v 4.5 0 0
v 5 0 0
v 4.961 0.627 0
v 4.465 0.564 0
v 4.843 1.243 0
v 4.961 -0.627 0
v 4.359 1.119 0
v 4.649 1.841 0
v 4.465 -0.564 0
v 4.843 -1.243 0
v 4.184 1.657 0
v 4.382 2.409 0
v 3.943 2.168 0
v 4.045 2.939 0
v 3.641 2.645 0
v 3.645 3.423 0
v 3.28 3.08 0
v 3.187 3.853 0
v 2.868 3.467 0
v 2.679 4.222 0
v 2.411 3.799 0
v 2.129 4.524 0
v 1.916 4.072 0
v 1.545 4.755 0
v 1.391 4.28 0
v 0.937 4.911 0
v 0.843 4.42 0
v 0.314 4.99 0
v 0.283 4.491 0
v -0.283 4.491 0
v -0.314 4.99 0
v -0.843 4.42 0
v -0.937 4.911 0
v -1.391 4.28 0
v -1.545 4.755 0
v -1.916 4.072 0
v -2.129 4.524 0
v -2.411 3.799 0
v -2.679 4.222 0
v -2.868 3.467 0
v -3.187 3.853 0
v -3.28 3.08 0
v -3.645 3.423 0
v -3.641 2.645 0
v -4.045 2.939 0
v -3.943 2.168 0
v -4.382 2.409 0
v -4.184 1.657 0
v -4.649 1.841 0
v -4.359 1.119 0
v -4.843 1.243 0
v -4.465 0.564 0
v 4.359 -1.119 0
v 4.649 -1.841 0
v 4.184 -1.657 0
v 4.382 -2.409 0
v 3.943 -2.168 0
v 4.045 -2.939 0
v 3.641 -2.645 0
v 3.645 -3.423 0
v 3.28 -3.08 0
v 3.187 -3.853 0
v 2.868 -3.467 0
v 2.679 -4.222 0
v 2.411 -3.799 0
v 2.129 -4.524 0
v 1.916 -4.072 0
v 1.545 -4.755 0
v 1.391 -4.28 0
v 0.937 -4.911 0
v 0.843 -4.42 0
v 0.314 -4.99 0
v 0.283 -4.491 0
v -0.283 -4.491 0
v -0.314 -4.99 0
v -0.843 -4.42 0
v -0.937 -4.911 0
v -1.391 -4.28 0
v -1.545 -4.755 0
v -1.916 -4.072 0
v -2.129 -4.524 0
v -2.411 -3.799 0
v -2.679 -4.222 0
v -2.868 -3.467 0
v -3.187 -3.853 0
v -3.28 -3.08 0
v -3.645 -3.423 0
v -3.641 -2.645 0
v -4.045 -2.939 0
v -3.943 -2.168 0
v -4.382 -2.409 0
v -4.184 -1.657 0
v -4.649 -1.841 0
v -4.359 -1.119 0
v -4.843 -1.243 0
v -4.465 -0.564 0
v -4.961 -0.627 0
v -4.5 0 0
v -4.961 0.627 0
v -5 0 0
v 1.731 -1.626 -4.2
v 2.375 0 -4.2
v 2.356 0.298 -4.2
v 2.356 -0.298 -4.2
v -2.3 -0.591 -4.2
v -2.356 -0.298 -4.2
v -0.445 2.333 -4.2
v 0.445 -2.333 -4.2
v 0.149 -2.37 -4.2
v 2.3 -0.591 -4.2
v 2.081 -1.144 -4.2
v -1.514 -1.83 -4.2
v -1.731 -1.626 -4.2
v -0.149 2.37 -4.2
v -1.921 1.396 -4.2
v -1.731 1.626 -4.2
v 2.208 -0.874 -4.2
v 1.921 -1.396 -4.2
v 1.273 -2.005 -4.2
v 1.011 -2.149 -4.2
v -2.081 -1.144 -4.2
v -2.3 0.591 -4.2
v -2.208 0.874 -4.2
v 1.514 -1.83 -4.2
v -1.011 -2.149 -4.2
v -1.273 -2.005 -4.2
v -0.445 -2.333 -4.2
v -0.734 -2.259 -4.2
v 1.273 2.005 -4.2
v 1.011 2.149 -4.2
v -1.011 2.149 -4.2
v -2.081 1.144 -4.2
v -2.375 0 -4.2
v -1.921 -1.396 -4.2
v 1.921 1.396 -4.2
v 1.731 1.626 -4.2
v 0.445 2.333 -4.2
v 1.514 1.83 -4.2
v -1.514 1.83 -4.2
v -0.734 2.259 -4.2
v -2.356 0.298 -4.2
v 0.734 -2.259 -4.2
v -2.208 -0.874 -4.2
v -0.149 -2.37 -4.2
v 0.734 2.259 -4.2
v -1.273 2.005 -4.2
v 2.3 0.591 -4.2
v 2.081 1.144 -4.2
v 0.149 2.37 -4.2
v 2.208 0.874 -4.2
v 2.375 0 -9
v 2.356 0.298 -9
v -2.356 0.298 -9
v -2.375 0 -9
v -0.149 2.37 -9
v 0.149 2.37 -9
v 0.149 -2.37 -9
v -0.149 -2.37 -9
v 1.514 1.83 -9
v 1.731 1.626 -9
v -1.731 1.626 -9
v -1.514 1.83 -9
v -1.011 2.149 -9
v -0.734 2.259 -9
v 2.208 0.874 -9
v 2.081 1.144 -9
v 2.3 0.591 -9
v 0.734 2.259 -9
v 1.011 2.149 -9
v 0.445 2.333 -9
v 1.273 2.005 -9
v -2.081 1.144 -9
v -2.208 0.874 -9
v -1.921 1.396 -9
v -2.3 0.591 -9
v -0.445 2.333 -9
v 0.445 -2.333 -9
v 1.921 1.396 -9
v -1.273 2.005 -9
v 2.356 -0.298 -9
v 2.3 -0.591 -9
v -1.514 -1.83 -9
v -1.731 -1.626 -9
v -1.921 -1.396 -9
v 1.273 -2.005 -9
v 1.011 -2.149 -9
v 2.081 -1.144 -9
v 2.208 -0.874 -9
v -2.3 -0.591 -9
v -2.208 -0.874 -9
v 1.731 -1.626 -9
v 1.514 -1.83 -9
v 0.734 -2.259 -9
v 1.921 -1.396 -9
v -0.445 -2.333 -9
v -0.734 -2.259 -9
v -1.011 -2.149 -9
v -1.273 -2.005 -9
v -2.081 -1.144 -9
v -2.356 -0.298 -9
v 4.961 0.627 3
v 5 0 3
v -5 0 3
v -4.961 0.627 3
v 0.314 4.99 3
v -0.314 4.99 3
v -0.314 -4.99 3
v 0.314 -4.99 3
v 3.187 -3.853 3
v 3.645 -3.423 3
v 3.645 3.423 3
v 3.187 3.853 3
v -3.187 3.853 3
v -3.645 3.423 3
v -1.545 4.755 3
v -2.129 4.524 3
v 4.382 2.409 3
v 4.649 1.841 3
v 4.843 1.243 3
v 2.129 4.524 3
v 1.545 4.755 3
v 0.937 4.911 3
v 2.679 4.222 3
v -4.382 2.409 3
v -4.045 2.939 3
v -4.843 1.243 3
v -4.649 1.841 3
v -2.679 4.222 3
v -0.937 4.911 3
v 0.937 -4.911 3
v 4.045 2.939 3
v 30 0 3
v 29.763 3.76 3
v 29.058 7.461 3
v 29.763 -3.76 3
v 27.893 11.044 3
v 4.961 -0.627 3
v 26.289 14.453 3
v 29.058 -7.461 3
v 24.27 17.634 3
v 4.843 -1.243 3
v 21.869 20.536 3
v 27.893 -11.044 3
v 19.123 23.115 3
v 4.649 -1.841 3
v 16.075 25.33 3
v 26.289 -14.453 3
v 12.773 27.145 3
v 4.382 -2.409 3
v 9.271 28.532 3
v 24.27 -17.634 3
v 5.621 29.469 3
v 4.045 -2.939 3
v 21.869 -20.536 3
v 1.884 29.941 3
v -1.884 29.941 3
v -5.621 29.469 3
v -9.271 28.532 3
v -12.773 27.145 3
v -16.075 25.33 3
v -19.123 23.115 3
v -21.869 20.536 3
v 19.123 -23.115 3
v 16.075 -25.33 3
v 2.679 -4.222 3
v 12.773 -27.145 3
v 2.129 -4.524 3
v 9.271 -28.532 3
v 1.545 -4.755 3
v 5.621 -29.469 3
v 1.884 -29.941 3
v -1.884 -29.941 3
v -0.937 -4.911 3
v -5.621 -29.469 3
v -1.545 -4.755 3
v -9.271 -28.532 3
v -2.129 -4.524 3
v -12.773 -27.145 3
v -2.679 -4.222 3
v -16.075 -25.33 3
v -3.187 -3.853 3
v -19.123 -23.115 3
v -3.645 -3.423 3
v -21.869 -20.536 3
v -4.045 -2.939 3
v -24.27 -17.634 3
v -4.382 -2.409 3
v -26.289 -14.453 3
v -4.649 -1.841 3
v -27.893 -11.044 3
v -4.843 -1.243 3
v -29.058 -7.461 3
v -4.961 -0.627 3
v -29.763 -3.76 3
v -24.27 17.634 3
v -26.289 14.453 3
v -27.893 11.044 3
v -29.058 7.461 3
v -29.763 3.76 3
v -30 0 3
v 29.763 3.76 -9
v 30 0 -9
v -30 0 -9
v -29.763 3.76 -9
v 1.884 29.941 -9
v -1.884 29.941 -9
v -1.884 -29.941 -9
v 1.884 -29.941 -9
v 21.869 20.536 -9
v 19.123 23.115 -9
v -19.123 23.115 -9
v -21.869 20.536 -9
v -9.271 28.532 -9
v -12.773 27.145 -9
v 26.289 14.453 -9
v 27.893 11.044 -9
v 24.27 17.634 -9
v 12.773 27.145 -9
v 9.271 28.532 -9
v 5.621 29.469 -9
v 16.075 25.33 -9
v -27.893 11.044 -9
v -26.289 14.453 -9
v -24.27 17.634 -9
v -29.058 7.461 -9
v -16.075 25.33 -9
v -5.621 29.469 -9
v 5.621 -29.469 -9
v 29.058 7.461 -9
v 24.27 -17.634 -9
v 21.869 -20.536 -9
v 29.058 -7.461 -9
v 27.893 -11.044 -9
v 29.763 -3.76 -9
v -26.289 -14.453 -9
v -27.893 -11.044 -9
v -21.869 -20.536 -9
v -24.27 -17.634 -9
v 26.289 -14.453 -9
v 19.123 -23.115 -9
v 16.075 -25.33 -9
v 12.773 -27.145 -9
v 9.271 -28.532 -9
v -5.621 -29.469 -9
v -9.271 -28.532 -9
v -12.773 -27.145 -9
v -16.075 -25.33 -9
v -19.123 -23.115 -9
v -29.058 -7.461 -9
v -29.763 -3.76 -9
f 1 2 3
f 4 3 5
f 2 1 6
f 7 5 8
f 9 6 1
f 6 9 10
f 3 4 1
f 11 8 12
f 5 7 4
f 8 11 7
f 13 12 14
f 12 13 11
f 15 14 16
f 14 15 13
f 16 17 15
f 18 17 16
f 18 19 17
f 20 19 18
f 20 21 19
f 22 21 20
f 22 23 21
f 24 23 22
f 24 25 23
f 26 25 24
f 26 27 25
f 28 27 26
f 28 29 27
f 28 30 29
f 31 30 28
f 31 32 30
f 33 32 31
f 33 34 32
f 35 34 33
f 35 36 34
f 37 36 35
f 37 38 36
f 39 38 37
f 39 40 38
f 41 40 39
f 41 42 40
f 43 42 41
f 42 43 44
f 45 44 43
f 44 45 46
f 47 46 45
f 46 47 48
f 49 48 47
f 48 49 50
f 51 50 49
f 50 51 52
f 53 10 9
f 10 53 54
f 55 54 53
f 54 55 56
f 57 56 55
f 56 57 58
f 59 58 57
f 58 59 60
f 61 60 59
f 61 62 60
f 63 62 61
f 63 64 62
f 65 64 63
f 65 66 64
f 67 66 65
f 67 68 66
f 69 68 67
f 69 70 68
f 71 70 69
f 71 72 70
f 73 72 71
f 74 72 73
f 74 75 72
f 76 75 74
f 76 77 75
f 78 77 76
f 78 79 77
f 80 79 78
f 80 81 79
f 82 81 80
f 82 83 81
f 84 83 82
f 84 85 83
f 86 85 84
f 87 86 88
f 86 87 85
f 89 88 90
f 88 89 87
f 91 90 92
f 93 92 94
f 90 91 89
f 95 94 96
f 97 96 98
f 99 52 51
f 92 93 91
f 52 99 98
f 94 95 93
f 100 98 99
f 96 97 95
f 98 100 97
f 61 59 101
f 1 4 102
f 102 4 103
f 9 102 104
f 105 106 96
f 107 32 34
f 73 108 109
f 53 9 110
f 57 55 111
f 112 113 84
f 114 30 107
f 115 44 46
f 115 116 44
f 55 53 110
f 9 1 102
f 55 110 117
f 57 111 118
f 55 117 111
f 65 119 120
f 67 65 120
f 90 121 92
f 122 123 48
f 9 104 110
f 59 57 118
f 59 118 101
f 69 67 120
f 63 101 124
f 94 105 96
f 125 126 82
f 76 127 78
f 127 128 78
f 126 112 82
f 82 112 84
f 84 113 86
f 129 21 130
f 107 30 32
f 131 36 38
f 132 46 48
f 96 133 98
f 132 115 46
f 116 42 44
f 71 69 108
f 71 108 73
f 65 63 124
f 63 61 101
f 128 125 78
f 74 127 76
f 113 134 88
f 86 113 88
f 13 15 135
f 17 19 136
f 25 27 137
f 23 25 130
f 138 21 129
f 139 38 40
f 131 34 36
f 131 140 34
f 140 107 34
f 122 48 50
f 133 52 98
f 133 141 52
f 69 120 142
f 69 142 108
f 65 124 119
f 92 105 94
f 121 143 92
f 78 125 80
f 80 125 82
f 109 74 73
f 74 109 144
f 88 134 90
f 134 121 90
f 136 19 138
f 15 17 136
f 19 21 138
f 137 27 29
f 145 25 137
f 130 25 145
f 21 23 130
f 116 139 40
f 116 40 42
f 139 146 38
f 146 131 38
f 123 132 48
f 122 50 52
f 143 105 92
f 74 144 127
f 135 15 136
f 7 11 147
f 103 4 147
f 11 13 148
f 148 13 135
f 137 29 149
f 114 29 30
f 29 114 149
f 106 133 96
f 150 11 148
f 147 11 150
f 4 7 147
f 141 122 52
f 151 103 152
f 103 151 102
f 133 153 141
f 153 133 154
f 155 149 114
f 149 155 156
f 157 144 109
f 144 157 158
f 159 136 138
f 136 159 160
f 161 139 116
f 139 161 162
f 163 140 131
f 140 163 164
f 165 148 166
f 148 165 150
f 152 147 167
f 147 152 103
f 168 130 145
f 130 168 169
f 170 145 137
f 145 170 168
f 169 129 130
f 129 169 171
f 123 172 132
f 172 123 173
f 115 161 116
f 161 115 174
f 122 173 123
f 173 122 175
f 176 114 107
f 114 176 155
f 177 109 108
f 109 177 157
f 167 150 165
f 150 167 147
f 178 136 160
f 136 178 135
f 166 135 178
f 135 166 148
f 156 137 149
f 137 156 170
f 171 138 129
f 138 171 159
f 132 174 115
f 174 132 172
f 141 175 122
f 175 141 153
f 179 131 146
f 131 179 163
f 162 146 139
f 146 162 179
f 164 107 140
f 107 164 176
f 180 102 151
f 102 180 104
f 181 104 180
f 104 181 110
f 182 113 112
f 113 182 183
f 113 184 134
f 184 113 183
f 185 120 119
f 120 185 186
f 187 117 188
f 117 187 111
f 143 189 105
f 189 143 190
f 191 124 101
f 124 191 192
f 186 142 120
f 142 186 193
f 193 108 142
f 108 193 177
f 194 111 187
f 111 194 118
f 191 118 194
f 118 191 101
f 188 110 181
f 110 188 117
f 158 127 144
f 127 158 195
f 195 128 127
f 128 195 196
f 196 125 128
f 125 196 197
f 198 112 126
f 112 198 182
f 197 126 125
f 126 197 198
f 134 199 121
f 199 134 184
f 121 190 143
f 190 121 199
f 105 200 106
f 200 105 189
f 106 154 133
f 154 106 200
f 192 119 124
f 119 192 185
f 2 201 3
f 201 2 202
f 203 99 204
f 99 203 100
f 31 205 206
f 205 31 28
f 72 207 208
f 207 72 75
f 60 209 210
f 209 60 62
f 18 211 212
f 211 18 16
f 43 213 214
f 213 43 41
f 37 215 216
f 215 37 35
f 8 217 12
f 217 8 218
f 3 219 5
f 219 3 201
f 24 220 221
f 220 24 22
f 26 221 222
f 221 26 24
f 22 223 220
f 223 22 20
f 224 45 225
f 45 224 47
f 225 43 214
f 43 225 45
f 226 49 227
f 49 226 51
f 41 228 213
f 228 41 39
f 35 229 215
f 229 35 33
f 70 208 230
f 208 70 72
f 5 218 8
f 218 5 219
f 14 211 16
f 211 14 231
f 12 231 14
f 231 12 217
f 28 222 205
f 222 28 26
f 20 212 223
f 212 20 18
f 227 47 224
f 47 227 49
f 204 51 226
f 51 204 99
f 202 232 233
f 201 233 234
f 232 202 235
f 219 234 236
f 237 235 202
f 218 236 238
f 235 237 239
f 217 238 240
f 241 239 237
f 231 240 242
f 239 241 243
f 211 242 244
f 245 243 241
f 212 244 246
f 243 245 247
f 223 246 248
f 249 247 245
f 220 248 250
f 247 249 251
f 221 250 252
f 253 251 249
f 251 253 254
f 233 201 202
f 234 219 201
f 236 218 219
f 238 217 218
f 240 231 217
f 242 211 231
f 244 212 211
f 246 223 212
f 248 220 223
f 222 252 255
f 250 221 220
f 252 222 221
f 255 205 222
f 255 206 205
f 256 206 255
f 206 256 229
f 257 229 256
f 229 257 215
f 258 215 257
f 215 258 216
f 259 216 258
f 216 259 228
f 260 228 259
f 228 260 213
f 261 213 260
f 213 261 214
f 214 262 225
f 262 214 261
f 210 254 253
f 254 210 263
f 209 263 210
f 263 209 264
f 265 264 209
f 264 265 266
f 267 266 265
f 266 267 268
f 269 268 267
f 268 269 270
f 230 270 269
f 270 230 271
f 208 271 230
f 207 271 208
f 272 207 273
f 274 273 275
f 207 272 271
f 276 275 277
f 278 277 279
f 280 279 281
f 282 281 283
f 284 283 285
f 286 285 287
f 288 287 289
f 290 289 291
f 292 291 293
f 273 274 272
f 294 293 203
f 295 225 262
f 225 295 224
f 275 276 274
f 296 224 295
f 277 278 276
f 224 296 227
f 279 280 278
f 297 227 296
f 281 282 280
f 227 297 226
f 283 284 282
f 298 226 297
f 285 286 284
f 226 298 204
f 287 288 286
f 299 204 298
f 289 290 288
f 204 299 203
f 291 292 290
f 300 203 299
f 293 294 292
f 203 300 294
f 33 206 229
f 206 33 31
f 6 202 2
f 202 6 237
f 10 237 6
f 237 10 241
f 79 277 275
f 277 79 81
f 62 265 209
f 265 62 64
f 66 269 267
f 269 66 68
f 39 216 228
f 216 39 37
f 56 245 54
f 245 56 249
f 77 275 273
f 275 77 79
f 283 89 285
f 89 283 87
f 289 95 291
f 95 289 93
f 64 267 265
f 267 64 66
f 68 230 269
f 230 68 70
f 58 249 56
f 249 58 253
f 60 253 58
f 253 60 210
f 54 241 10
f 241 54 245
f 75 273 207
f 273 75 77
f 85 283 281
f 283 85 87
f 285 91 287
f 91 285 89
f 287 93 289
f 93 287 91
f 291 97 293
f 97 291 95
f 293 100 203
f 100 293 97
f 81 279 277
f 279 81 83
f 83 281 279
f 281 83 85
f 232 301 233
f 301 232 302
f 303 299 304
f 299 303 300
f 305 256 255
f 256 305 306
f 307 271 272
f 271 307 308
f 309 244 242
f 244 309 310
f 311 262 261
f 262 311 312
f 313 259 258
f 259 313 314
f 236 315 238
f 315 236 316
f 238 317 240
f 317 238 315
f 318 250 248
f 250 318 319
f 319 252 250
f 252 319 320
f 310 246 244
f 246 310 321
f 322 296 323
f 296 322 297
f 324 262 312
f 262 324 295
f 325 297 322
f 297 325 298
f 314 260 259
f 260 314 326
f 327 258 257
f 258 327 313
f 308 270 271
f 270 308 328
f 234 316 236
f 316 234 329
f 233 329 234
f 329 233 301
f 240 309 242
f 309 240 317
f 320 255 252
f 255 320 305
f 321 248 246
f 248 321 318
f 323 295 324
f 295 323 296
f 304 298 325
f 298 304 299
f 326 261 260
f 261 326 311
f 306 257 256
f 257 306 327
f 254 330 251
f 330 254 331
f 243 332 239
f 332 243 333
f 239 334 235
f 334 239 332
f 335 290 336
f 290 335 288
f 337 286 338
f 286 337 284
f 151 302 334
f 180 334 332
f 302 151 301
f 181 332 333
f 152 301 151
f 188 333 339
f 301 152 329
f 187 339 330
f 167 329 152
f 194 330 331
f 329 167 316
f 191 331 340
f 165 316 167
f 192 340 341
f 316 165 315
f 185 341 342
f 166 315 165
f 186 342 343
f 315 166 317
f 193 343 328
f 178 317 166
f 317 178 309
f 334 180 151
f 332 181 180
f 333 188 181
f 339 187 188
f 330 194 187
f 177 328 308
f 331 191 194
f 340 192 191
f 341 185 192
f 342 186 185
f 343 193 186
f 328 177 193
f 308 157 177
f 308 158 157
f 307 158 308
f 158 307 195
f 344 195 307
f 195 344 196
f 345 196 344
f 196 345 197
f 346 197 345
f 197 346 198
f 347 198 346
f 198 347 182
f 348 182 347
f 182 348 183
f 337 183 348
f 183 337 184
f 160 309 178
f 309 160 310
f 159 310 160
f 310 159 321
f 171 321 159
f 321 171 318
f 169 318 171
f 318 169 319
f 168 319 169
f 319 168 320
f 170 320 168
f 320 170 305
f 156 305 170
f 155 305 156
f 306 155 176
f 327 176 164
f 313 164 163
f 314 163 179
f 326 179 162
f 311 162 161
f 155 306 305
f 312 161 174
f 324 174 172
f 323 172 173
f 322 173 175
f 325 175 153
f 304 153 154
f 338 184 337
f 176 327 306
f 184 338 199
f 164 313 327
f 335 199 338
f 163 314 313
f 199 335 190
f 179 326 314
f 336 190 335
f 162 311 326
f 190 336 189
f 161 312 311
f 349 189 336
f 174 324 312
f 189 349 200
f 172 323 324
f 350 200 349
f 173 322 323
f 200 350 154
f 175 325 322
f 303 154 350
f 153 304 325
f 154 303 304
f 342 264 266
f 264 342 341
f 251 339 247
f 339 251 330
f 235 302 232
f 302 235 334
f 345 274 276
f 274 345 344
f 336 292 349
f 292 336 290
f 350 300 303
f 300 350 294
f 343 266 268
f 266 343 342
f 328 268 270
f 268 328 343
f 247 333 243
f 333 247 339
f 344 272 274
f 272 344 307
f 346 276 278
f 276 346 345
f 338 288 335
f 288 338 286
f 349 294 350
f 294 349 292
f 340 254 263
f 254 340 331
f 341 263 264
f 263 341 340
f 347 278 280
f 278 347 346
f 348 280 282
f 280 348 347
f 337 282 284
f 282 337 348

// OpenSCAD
$fn = 50;

difference() {
	union() {
		translate(v = [0, 0, -9.0]) {
			cylinder(h = 12, r = 30.0);
		}
	}
	union() {
		translate(v = [0, 0, 0]) {
			rotate(a = [0, 0, 0]) {
				difference() {
					union() {
						translate(v = [0, 0, -12.0]) {
							cylinder(h = 12, r = 2.25);
						}
						translate(v = [0, 0, -4.2]) {
							cylinder(h = 4.2, r1 = 2.375, r2 = 4.5);
						}
						translate(v = [0, 0, -12.0]) {
							cylinder(h = 12, r = 2.375);
						}
						translate(v = [0, 0, -12.0]) {
							cylinder(h = 12, r = 2.25);
						}
					}
					union();
				}
			}
		}
		#cylinder(h = 3, r = 5.0);
	}
}
